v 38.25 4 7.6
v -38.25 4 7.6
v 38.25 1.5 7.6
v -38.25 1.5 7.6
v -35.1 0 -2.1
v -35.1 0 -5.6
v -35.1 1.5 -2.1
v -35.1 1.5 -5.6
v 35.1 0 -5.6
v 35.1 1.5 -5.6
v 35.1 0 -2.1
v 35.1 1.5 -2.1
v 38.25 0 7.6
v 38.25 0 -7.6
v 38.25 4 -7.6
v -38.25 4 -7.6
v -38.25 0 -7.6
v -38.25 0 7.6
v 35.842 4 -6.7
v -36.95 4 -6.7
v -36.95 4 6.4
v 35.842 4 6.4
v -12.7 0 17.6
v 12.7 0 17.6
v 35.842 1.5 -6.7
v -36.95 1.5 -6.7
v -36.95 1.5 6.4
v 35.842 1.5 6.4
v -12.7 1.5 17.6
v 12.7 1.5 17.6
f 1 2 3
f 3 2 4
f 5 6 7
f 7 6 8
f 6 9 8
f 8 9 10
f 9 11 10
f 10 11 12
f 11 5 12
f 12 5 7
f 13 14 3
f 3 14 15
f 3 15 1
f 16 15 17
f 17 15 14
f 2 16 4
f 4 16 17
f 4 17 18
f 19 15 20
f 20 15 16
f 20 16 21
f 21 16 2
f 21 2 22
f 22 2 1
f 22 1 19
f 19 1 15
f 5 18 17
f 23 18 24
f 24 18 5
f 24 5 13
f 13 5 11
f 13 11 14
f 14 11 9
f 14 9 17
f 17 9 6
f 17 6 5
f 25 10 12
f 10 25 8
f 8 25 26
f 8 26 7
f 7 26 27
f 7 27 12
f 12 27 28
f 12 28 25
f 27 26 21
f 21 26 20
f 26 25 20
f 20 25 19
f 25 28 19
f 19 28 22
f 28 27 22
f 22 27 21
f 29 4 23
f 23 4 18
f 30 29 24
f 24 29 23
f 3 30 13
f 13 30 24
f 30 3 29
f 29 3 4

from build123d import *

# Parameters (mm, degrees)
CROQUIS1_W              = 76.5
CROQUIS1_H              = 15.2
SALIENTE_EXTRUIR1_DEPTH = 4
CROQUIS2_W              = 70.2
CROQUIS2_H              = 3.5
CORTAR_EXTRUIR1_DEPTH   = 4
CROQUIS3_W              = 72.792072964
CROQUIS3_H              = 13.1
CORTAR_EXTRUIR2_DEPTH   = 2.5
SALIENTE_EXTRUIR2_DEPTH = 1.5


with BuildPart() as part:
    # Croquis1 → Saliente-Extruir1 (new body)
    with BuildSketch(Plane(origin=(0, 0, 0), x_dir=(1, 0, 0), z_dir=(0, 1, 0))):
        Rectangle(CROQUIS1_W, CROQUIS1_H)
    extrude(amount=SALIENTE_EXTRUIR1_DEPTH)

    # Croquis2 → Cortar-Extruir1 (cut)
    with BuildSketch(Plane(origin=(0, 4, 0), x_dir=(1, 0, 0), z_dir=(0, 1, 0))):
        with Locations((0, 3.85)):
            Rectangle(CROQUIS2_W, CROQUIS2_H)
    extrude(amount=-CORTAR_EXTRUIR1_DEPTH, mode=Mode.SUBTRACT)

    # Croquis3 → Cortar-Extruir2 (cut)
    with BuildSketch(Plane(origin=(0, 4, 0), x_dir=(1, 0, 0), z_dir=(0, 1, 0))):
        with Locations((-0.553963518, 0.15)):
            Rectangle(CROQUIS3_W, CROQUIS3_H)
    extrude(amount=-CORTAR_EXTRUIR2_DEPTH, mode=Mode.SUBTRACT)

    # Croquis4 → Saliente-Extruir2 (add)
    with BuildSketch(Plane(origin=(0, 0, 0), x_dir=(1, 0, 0), z_dir=(0, 1, 0))):
        Polygon((-12.7, -17.6), (12.7, -17.6), (38.25, -7.6), (-38.25, -7.6), align=None)
    extrude(amount=SALIENTE_EXTRUIR2_DEPTH)


solid = part.part
